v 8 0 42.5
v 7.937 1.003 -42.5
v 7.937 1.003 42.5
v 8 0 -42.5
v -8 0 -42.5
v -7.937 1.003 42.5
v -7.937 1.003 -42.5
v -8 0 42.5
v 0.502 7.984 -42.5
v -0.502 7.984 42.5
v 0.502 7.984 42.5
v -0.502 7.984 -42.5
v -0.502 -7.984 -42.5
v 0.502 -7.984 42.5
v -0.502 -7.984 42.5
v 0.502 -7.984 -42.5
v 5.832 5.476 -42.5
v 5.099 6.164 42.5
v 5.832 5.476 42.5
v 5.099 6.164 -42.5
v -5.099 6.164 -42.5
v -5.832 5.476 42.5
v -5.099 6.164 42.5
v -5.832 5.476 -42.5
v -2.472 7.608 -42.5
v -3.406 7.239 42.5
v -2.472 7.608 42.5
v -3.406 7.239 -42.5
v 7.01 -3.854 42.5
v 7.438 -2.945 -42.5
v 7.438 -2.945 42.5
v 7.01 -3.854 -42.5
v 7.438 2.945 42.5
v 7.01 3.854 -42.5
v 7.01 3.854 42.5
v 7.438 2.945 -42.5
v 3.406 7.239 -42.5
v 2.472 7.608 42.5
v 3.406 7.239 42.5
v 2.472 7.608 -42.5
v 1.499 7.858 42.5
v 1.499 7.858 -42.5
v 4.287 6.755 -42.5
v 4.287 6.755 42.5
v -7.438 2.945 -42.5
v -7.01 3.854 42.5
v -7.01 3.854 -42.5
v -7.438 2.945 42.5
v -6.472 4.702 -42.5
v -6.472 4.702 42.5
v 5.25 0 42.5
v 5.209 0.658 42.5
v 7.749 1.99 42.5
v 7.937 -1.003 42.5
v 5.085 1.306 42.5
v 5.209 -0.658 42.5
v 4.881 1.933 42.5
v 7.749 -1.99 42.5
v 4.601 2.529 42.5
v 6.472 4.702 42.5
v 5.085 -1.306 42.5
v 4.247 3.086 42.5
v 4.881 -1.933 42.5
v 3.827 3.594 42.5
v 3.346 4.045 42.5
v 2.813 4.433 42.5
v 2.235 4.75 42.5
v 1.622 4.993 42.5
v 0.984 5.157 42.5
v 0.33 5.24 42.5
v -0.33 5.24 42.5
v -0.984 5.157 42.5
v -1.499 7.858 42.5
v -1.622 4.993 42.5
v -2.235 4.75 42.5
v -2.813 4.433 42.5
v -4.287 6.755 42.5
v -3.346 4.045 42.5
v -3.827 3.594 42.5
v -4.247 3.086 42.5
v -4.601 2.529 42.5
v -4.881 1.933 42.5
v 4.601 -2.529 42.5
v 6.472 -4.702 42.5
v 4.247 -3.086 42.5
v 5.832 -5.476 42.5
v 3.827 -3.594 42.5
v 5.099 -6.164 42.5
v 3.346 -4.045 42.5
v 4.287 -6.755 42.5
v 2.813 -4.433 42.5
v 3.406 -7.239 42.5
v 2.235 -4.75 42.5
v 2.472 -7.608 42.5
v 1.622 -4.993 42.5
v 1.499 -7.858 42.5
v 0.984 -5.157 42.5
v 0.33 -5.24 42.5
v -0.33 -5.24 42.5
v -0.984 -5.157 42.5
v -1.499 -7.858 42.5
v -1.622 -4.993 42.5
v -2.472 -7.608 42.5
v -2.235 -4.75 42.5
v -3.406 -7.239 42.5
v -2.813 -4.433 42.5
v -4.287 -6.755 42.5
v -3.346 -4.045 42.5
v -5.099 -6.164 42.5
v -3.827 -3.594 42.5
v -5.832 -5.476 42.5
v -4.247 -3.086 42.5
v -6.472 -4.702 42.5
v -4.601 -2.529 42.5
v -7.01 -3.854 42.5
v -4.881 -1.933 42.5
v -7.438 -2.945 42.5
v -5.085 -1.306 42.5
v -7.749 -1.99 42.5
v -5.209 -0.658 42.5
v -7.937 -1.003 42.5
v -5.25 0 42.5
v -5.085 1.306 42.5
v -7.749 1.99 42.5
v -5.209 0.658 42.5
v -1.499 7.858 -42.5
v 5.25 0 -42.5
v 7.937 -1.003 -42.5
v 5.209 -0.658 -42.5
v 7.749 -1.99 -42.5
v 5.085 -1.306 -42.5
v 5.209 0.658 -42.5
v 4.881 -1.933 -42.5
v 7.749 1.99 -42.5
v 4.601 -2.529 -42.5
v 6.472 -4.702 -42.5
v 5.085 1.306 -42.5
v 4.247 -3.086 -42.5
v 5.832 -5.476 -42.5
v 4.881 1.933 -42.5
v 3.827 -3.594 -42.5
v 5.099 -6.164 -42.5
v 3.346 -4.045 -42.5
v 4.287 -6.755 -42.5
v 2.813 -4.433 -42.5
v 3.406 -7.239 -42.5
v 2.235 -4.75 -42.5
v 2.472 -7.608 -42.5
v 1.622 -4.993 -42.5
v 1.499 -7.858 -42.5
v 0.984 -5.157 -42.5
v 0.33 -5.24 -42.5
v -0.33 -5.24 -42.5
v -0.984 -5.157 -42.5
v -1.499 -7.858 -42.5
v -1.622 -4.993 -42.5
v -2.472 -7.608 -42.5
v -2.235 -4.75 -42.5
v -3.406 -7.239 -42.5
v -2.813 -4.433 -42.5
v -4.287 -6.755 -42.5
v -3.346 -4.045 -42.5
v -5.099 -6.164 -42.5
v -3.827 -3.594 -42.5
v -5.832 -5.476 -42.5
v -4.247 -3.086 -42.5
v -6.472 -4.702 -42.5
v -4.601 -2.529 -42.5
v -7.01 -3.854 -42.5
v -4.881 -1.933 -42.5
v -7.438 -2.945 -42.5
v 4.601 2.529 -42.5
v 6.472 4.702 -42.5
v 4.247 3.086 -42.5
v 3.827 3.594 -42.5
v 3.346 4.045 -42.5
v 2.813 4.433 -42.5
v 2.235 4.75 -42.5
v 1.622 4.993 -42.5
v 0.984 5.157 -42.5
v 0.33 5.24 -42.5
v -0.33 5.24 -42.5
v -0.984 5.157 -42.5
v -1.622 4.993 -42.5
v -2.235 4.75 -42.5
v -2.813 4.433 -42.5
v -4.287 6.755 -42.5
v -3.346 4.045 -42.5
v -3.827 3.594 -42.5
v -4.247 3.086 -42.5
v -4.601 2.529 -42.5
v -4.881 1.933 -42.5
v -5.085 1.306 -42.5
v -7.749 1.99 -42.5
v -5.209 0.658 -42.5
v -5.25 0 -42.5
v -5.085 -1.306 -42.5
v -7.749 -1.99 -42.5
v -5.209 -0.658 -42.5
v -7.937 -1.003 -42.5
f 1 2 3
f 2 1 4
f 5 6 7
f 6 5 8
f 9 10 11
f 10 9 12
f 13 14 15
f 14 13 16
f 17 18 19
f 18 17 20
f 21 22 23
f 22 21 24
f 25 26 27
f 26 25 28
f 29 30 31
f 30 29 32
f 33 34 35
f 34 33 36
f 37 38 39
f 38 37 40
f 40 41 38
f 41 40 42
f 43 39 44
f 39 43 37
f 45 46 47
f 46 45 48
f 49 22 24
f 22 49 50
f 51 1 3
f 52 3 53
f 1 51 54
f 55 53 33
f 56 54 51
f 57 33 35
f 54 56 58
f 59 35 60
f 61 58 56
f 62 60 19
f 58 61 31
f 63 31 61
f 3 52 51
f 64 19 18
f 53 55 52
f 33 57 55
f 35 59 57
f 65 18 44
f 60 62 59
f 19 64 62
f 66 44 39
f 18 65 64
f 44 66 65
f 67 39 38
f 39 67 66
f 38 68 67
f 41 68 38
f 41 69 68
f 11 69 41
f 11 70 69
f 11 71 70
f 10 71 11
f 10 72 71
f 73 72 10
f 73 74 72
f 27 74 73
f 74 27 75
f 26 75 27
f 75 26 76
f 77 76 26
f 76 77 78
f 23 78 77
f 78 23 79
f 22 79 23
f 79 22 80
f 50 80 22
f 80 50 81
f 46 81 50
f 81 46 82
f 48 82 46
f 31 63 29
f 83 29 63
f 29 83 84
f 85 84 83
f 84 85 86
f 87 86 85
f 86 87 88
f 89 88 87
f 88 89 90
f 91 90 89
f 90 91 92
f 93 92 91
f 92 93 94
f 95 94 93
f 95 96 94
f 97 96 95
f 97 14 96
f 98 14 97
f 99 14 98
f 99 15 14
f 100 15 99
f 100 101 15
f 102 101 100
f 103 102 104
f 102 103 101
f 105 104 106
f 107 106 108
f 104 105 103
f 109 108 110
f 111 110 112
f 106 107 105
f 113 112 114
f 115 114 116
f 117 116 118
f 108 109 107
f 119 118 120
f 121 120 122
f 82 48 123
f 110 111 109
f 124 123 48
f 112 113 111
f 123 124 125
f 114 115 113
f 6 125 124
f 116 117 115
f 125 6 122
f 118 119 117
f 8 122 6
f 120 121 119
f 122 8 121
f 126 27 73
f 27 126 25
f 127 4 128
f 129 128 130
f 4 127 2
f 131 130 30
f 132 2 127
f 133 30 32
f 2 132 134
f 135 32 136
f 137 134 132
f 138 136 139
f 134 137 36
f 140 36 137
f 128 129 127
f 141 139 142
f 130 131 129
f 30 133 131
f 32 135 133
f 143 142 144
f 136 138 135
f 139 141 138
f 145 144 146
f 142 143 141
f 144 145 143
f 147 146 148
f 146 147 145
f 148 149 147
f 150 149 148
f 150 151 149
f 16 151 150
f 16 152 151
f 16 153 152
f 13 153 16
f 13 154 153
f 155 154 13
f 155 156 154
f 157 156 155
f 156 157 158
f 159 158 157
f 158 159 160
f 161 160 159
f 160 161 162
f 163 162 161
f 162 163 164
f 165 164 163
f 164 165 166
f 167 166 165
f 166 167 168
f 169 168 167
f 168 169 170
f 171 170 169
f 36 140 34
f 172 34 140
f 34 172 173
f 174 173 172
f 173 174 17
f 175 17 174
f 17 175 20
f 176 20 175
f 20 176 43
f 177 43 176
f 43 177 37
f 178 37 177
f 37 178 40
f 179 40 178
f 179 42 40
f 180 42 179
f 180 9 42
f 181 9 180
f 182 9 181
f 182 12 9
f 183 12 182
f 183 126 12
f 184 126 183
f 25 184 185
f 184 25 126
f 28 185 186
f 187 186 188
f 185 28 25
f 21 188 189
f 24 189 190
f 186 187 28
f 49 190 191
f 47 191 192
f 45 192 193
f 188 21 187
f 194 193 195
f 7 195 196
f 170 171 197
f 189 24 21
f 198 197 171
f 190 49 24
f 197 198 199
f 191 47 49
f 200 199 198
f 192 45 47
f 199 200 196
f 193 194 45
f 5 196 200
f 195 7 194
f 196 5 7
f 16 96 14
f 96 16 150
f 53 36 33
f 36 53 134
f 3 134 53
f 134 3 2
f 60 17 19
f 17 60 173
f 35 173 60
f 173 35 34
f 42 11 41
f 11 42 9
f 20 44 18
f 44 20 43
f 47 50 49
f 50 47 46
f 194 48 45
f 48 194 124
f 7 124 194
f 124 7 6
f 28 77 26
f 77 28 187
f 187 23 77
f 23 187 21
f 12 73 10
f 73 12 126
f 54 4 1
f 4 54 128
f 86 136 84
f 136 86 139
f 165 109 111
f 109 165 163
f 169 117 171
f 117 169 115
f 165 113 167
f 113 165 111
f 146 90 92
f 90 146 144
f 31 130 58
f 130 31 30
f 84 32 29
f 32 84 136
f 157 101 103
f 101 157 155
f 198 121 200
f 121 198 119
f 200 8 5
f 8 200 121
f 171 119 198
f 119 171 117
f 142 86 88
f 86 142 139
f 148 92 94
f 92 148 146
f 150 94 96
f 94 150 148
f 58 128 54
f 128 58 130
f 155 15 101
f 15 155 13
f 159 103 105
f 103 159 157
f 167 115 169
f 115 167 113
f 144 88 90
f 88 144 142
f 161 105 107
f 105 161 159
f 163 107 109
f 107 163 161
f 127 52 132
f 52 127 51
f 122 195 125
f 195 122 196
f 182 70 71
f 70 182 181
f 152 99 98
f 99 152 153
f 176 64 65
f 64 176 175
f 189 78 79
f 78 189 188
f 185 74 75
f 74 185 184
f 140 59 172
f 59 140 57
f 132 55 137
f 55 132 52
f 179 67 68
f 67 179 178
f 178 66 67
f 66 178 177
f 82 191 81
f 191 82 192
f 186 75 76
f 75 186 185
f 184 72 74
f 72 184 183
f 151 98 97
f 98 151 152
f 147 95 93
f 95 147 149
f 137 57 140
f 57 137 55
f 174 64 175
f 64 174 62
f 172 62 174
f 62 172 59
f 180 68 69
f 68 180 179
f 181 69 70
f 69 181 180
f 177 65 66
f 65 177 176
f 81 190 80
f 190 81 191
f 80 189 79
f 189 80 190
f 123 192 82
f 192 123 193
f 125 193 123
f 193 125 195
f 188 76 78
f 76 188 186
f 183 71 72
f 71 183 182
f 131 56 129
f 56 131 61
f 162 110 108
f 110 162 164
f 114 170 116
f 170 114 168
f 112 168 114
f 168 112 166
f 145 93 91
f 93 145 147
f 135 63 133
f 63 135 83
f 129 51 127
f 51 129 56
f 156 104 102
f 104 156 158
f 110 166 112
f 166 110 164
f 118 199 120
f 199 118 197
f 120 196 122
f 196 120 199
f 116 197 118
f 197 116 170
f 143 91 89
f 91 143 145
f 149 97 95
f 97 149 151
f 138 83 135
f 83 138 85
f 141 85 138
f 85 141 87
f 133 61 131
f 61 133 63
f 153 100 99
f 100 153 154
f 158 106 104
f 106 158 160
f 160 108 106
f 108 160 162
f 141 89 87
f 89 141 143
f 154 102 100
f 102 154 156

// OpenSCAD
$fn = 50;


difference() {
	union() {
		translate(v = [0, 0, -42.5000000000]) {
			cylinder(h = 85, r = 8.0000000000);
		}
	}
	union() {
		translate(v = [0, 0, -100.0000000000]) {
			cylinder(h = 200, r = 5.2500000000);
		}
	}
}
